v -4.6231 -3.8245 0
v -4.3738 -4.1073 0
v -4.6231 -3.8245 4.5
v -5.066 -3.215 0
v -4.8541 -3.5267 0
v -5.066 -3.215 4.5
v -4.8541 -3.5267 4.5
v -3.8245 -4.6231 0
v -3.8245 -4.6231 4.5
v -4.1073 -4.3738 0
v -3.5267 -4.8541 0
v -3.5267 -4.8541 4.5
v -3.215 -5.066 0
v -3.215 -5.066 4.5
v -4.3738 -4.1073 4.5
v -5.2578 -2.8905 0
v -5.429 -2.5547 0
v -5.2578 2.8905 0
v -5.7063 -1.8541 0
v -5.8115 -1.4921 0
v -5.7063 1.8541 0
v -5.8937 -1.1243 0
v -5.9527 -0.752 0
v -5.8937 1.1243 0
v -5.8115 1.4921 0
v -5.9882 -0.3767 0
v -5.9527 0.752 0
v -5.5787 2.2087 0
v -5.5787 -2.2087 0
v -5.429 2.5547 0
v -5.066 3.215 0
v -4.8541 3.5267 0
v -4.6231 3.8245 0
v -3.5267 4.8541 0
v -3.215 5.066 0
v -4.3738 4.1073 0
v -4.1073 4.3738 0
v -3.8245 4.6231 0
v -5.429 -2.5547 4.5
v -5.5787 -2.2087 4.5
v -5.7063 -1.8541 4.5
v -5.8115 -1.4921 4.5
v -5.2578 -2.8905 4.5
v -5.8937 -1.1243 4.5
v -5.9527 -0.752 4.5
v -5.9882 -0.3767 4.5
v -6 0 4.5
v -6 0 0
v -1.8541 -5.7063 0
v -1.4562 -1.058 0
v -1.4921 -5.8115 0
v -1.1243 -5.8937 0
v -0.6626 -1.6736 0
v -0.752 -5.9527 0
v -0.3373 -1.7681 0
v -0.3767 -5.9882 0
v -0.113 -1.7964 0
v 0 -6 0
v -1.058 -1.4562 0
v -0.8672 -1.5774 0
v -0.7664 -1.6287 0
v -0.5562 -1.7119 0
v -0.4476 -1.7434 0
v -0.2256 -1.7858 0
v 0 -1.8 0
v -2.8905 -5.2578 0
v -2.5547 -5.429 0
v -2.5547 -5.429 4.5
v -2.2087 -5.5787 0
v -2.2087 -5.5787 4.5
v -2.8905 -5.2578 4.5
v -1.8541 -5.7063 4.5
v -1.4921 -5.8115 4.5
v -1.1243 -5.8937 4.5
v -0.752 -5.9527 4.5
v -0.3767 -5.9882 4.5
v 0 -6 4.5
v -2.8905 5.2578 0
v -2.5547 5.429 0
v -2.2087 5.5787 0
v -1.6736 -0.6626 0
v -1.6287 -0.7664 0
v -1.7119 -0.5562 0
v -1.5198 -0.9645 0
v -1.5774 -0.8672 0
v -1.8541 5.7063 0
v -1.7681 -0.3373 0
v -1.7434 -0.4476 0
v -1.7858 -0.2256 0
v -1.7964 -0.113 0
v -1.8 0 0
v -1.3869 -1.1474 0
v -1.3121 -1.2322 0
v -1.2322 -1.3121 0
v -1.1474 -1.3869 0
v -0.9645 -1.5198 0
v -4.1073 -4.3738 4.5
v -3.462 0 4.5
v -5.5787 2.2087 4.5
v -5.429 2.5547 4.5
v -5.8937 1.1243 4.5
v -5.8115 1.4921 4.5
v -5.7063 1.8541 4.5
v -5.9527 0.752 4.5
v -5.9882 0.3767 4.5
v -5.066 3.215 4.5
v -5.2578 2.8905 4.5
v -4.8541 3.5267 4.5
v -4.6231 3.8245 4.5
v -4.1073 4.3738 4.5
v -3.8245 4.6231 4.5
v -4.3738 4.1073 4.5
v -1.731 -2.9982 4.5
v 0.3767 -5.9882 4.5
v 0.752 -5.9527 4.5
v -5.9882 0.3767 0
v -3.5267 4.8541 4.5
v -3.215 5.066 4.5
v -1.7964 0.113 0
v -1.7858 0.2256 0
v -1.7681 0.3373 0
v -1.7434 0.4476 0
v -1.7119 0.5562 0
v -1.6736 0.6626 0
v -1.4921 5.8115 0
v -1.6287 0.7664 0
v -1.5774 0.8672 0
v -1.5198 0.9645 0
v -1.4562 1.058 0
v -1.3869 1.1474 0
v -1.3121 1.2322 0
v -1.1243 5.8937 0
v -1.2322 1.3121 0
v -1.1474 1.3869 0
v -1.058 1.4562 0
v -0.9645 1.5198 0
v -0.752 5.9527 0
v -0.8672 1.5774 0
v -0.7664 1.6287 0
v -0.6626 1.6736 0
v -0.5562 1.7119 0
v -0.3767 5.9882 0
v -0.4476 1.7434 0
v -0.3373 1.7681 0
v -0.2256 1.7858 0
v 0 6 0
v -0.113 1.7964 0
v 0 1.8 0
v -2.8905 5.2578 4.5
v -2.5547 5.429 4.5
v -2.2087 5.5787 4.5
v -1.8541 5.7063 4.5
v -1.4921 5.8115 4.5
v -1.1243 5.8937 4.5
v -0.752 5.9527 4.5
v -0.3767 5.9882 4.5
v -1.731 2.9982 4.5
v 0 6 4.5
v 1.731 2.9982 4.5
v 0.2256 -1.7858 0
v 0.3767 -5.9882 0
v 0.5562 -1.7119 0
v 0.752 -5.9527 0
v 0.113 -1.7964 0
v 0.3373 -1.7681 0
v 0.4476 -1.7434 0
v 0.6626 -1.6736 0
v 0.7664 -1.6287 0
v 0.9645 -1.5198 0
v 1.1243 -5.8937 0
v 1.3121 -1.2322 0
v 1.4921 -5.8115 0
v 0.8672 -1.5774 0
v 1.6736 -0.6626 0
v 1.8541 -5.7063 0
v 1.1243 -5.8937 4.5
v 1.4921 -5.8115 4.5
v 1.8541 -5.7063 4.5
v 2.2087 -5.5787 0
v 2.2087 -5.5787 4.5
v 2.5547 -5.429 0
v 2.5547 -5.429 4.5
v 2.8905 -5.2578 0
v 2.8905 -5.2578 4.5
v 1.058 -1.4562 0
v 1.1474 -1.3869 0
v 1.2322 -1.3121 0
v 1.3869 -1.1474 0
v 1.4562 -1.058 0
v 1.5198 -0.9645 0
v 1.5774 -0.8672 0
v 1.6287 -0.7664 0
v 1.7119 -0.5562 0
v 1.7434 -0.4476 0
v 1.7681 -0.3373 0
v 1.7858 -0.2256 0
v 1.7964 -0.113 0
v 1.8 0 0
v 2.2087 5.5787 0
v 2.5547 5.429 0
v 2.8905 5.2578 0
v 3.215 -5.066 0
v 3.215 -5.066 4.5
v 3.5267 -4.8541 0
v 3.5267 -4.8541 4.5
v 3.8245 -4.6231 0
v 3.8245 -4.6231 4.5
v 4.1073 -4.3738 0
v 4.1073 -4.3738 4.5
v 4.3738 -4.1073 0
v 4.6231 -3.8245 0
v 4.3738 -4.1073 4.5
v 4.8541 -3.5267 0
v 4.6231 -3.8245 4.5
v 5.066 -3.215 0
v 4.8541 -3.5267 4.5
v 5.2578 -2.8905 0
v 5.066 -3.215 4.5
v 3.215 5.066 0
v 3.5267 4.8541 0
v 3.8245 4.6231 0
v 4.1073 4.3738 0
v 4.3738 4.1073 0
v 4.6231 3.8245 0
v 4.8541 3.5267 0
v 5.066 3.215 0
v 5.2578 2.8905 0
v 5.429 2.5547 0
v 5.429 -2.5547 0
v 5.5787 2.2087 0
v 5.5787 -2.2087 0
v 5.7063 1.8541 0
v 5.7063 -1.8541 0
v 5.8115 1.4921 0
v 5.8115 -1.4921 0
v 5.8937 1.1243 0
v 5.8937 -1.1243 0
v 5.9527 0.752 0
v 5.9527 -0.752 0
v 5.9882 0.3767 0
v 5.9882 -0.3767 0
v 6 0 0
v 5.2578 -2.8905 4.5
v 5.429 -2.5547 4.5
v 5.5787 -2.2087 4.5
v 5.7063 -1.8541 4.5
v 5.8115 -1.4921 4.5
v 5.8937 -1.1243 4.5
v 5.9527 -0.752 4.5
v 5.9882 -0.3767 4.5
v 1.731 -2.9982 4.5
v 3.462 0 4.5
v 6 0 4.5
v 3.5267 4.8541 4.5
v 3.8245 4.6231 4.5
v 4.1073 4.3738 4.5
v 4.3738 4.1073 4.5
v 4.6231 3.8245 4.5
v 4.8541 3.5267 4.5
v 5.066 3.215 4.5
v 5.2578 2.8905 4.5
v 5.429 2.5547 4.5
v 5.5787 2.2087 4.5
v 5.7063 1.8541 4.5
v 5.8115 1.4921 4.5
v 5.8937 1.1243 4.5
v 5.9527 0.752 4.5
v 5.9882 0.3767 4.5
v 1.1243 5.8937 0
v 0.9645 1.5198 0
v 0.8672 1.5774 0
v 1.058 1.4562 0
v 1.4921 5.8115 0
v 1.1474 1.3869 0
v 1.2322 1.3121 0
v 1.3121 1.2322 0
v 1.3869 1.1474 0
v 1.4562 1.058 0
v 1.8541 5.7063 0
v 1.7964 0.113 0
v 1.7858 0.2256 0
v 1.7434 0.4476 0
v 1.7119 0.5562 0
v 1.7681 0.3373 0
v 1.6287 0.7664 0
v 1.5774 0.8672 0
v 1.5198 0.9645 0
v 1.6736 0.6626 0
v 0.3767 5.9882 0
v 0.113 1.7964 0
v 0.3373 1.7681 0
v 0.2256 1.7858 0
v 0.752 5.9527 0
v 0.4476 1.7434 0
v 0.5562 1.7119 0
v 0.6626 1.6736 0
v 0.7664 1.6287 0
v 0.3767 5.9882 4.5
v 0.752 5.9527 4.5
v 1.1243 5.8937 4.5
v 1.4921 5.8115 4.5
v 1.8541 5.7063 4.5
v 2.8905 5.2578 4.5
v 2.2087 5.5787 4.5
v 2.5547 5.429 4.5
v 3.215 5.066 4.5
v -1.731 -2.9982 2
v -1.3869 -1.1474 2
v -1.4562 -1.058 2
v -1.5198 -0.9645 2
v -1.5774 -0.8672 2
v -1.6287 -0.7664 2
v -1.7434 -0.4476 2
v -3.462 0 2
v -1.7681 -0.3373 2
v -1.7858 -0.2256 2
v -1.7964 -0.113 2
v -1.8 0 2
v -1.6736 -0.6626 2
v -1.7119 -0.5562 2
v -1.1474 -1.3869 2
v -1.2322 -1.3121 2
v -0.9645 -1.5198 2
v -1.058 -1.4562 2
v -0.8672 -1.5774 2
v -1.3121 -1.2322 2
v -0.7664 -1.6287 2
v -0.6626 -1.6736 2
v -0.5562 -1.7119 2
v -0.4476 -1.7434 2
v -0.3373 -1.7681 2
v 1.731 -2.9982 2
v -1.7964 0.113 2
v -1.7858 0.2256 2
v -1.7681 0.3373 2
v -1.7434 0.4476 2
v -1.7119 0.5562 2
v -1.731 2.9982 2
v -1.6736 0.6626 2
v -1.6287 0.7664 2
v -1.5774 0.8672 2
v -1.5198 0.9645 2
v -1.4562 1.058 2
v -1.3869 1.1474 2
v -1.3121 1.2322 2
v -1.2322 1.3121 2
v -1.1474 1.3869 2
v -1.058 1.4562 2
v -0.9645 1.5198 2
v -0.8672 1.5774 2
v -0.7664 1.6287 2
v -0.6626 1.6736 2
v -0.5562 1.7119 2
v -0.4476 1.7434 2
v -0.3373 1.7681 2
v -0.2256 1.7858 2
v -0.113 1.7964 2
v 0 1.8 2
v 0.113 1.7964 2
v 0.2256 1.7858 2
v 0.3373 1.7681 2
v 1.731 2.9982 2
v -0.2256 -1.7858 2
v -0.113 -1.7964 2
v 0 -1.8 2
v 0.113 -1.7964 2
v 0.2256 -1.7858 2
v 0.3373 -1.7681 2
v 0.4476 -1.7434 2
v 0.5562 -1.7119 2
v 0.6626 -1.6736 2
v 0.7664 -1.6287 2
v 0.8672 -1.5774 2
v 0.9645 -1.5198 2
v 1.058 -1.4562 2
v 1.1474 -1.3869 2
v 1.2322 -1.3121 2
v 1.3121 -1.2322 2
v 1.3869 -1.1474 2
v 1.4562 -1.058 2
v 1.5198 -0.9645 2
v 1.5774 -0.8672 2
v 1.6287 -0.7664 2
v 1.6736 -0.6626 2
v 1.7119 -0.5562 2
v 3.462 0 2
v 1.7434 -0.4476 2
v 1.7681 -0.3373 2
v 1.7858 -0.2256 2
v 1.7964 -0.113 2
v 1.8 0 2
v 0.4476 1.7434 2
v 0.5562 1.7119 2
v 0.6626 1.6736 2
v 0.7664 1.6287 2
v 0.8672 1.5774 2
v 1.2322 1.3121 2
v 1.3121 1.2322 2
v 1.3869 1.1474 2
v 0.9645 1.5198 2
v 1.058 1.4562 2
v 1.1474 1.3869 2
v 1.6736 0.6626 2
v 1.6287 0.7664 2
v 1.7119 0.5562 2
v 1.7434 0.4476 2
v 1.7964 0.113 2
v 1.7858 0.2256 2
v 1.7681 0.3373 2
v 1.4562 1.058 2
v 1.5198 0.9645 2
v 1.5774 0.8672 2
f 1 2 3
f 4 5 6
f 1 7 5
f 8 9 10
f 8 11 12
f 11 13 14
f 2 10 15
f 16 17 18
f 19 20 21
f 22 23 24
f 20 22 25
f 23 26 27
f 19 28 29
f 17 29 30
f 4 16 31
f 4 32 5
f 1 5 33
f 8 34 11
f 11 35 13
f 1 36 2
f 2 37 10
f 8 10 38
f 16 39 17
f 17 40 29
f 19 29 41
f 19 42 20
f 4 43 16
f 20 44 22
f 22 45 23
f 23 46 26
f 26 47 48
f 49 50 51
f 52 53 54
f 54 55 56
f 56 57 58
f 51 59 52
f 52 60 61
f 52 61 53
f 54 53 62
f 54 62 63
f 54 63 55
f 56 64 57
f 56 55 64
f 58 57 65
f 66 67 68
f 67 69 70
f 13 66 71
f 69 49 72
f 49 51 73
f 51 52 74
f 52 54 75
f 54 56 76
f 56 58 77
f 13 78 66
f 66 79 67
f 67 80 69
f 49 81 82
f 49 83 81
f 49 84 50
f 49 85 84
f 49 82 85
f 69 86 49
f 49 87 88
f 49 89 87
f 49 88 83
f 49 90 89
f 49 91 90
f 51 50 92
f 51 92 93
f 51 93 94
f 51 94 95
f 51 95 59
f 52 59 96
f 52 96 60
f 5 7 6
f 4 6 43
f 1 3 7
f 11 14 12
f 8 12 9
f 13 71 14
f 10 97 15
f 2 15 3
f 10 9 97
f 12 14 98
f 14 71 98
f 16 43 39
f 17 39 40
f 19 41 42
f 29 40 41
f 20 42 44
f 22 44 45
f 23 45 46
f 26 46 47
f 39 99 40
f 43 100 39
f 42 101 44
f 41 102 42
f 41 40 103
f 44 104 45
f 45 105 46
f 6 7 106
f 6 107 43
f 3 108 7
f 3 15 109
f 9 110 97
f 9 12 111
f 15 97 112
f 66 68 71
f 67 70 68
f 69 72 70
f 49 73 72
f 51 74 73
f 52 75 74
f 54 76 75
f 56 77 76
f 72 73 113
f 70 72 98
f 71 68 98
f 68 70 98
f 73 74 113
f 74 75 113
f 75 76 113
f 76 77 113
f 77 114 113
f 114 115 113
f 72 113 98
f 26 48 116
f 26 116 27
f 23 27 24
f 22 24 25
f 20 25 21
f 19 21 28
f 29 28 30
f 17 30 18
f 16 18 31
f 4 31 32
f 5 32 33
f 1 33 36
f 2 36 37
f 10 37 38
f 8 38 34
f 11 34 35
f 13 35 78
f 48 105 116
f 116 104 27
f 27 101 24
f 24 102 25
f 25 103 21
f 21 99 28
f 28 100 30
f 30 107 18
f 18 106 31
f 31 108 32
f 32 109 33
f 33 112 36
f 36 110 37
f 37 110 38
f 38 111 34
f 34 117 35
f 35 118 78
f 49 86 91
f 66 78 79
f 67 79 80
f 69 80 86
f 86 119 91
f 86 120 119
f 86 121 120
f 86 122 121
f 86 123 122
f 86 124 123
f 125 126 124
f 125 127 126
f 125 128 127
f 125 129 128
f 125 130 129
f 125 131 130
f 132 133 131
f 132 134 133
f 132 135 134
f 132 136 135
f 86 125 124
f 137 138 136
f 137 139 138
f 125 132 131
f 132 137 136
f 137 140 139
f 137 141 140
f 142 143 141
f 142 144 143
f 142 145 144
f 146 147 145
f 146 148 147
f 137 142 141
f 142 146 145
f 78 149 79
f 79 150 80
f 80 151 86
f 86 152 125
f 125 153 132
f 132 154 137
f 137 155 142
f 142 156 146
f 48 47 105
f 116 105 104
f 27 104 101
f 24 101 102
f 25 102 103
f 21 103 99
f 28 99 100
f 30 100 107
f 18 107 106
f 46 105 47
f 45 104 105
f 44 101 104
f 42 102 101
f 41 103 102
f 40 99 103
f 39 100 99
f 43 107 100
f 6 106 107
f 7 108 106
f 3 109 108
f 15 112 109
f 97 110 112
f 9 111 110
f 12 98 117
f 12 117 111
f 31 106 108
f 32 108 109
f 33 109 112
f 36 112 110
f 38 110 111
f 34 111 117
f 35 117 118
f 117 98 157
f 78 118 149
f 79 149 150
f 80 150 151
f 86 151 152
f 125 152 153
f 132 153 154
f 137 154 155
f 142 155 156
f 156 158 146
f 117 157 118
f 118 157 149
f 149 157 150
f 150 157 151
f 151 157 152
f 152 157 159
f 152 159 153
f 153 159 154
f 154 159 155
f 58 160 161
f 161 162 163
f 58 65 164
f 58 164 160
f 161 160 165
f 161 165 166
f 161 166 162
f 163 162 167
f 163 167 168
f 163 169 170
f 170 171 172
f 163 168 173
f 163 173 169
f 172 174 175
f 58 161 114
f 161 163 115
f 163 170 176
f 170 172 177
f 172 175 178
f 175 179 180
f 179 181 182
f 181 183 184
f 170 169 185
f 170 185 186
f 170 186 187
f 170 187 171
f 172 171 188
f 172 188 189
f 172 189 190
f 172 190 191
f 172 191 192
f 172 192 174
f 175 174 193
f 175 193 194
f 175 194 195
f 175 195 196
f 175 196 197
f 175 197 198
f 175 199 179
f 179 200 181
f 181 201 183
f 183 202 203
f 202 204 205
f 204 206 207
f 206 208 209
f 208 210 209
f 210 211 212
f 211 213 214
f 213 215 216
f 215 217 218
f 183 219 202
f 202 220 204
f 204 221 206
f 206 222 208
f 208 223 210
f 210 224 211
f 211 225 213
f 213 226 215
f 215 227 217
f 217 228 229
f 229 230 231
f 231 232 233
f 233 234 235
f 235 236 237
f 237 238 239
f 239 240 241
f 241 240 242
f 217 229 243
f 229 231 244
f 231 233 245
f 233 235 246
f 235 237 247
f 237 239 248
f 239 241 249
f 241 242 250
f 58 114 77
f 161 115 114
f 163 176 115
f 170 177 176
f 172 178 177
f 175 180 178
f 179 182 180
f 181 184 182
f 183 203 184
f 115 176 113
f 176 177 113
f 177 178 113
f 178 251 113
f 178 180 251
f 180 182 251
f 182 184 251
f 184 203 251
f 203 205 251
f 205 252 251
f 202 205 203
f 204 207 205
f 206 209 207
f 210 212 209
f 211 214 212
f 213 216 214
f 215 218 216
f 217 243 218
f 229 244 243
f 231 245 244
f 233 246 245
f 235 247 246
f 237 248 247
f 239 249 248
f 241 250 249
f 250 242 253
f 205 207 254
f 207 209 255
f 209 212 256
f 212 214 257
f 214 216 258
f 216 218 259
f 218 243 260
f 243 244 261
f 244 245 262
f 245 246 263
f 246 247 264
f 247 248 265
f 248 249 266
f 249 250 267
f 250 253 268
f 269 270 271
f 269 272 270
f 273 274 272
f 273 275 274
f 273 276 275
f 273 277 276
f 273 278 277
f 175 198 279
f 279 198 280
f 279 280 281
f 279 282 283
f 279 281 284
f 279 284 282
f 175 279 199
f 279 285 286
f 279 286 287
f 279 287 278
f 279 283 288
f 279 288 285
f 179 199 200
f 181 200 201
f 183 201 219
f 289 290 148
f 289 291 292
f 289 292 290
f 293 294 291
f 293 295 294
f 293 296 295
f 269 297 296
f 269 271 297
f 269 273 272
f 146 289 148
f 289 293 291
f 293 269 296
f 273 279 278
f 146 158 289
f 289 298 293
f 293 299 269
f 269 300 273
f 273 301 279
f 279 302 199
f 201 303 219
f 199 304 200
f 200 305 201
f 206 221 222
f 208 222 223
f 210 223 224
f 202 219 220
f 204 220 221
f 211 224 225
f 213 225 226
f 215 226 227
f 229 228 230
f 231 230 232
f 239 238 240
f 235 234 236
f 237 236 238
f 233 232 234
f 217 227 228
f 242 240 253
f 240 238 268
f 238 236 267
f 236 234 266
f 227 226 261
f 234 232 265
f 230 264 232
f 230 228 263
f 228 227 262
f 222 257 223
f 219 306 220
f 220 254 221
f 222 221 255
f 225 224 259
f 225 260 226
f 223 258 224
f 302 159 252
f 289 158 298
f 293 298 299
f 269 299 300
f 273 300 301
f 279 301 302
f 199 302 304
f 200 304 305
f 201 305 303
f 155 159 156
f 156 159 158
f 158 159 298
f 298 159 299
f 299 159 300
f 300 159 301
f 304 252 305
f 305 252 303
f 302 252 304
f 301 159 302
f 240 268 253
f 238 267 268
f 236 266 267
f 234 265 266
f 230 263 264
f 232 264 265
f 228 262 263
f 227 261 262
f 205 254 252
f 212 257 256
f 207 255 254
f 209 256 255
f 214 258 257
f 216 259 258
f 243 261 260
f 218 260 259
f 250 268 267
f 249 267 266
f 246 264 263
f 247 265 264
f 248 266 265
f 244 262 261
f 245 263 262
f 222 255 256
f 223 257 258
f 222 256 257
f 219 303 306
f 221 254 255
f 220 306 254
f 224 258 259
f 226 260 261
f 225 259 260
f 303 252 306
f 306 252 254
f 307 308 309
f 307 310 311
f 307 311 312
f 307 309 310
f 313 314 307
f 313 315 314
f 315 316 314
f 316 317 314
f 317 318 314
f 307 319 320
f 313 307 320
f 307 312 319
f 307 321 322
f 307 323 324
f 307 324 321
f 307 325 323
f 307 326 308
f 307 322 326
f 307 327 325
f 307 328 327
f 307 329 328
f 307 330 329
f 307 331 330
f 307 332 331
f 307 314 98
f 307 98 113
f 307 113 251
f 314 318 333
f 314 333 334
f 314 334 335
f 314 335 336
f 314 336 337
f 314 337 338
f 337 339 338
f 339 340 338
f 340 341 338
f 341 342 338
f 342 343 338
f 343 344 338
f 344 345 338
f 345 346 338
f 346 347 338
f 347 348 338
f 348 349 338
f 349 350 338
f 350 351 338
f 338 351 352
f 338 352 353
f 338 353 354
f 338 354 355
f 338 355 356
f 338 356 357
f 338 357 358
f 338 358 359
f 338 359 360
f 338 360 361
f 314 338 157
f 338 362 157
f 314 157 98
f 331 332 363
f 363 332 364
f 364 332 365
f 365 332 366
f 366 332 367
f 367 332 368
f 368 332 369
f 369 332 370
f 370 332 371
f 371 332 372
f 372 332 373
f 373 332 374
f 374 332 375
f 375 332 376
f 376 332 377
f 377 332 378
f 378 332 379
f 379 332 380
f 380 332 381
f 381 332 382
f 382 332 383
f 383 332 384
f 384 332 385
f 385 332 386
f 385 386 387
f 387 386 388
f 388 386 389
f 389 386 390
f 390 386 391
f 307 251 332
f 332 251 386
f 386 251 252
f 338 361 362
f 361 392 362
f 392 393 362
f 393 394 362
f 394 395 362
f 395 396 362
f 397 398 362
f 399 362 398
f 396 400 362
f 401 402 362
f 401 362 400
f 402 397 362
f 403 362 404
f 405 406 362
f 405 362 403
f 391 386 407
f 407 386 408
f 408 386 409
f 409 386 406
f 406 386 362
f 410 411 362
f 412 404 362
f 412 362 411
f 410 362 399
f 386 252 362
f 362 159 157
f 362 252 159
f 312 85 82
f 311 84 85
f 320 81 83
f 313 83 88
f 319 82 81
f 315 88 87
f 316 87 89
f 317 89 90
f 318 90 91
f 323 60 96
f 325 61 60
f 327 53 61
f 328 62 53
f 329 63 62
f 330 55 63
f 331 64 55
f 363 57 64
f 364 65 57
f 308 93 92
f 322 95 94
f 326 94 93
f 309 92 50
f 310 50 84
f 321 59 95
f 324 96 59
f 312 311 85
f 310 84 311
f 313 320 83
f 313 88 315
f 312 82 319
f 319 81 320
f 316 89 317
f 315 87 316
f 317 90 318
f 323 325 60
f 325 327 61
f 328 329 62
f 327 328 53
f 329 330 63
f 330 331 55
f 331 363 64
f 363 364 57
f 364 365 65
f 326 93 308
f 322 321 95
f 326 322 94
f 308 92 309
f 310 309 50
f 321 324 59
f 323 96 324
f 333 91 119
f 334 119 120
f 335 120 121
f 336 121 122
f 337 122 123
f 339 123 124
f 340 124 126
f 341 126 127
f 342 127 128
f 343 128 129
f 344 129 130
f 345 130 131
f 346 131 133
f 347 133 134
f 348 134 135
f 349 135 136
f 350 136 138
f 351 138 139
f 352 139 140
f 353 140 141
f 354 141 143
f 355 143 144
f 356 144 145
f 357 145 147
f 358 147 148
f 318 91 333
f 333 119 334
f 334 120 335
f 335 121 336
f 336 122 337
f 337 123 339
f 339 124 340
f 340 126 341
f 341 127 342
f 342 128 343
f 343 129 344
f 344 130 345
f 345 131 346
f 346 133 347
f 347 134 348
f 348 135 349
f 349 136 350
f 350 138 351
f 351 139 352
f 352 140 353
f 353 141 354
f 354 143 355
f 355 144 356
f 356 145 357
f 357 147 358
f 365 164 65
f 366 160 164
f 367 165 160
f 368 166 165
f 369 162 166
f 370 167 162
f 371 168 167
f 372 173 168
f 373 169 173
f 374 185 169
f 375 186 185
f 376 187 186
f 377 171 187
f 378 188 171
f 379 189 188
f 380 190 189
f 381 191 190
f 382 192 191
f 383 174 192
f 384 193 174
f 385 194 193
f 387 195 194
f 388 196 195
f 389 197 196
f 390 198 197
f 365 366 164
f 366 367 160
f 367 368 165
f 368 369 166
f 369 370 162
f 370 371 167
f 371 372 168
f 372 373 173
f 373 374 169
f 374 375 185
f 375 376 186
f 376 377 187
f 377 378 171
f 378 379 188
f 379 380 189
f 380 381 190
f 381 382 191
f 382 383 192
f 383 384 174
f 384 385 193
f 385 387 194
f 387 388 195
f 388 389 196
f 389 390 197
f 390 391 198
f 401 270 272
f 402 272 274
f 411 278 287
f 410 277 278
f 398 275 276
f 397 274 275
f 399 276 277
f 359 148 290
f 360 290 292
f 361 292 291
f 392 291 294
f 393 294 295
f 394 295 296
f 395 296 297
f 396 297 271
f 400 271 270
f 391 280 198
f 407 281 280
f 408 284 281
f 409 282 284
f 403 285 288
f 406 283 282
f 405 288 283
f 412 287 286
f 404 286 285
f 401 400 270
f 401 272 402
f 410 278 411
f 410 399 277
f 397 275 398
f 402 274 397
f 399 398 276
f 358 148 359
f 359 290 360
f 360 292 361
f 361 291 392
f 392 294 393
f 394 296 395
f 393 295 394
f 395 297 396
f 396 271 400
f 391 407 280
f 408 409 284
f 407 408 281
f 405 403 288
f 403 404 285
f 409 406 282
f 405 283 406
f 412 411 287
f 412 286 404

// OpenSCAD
$fn = 100;

difference() {
    cylinder(h=4.5, d=12);
    translate([0, 0, 2])
        cylinder(h=2.5, r=3.462, $fn=6);
    translate([0, 0, -1])
        cylinder(h=6.5, r=1.8);
}
